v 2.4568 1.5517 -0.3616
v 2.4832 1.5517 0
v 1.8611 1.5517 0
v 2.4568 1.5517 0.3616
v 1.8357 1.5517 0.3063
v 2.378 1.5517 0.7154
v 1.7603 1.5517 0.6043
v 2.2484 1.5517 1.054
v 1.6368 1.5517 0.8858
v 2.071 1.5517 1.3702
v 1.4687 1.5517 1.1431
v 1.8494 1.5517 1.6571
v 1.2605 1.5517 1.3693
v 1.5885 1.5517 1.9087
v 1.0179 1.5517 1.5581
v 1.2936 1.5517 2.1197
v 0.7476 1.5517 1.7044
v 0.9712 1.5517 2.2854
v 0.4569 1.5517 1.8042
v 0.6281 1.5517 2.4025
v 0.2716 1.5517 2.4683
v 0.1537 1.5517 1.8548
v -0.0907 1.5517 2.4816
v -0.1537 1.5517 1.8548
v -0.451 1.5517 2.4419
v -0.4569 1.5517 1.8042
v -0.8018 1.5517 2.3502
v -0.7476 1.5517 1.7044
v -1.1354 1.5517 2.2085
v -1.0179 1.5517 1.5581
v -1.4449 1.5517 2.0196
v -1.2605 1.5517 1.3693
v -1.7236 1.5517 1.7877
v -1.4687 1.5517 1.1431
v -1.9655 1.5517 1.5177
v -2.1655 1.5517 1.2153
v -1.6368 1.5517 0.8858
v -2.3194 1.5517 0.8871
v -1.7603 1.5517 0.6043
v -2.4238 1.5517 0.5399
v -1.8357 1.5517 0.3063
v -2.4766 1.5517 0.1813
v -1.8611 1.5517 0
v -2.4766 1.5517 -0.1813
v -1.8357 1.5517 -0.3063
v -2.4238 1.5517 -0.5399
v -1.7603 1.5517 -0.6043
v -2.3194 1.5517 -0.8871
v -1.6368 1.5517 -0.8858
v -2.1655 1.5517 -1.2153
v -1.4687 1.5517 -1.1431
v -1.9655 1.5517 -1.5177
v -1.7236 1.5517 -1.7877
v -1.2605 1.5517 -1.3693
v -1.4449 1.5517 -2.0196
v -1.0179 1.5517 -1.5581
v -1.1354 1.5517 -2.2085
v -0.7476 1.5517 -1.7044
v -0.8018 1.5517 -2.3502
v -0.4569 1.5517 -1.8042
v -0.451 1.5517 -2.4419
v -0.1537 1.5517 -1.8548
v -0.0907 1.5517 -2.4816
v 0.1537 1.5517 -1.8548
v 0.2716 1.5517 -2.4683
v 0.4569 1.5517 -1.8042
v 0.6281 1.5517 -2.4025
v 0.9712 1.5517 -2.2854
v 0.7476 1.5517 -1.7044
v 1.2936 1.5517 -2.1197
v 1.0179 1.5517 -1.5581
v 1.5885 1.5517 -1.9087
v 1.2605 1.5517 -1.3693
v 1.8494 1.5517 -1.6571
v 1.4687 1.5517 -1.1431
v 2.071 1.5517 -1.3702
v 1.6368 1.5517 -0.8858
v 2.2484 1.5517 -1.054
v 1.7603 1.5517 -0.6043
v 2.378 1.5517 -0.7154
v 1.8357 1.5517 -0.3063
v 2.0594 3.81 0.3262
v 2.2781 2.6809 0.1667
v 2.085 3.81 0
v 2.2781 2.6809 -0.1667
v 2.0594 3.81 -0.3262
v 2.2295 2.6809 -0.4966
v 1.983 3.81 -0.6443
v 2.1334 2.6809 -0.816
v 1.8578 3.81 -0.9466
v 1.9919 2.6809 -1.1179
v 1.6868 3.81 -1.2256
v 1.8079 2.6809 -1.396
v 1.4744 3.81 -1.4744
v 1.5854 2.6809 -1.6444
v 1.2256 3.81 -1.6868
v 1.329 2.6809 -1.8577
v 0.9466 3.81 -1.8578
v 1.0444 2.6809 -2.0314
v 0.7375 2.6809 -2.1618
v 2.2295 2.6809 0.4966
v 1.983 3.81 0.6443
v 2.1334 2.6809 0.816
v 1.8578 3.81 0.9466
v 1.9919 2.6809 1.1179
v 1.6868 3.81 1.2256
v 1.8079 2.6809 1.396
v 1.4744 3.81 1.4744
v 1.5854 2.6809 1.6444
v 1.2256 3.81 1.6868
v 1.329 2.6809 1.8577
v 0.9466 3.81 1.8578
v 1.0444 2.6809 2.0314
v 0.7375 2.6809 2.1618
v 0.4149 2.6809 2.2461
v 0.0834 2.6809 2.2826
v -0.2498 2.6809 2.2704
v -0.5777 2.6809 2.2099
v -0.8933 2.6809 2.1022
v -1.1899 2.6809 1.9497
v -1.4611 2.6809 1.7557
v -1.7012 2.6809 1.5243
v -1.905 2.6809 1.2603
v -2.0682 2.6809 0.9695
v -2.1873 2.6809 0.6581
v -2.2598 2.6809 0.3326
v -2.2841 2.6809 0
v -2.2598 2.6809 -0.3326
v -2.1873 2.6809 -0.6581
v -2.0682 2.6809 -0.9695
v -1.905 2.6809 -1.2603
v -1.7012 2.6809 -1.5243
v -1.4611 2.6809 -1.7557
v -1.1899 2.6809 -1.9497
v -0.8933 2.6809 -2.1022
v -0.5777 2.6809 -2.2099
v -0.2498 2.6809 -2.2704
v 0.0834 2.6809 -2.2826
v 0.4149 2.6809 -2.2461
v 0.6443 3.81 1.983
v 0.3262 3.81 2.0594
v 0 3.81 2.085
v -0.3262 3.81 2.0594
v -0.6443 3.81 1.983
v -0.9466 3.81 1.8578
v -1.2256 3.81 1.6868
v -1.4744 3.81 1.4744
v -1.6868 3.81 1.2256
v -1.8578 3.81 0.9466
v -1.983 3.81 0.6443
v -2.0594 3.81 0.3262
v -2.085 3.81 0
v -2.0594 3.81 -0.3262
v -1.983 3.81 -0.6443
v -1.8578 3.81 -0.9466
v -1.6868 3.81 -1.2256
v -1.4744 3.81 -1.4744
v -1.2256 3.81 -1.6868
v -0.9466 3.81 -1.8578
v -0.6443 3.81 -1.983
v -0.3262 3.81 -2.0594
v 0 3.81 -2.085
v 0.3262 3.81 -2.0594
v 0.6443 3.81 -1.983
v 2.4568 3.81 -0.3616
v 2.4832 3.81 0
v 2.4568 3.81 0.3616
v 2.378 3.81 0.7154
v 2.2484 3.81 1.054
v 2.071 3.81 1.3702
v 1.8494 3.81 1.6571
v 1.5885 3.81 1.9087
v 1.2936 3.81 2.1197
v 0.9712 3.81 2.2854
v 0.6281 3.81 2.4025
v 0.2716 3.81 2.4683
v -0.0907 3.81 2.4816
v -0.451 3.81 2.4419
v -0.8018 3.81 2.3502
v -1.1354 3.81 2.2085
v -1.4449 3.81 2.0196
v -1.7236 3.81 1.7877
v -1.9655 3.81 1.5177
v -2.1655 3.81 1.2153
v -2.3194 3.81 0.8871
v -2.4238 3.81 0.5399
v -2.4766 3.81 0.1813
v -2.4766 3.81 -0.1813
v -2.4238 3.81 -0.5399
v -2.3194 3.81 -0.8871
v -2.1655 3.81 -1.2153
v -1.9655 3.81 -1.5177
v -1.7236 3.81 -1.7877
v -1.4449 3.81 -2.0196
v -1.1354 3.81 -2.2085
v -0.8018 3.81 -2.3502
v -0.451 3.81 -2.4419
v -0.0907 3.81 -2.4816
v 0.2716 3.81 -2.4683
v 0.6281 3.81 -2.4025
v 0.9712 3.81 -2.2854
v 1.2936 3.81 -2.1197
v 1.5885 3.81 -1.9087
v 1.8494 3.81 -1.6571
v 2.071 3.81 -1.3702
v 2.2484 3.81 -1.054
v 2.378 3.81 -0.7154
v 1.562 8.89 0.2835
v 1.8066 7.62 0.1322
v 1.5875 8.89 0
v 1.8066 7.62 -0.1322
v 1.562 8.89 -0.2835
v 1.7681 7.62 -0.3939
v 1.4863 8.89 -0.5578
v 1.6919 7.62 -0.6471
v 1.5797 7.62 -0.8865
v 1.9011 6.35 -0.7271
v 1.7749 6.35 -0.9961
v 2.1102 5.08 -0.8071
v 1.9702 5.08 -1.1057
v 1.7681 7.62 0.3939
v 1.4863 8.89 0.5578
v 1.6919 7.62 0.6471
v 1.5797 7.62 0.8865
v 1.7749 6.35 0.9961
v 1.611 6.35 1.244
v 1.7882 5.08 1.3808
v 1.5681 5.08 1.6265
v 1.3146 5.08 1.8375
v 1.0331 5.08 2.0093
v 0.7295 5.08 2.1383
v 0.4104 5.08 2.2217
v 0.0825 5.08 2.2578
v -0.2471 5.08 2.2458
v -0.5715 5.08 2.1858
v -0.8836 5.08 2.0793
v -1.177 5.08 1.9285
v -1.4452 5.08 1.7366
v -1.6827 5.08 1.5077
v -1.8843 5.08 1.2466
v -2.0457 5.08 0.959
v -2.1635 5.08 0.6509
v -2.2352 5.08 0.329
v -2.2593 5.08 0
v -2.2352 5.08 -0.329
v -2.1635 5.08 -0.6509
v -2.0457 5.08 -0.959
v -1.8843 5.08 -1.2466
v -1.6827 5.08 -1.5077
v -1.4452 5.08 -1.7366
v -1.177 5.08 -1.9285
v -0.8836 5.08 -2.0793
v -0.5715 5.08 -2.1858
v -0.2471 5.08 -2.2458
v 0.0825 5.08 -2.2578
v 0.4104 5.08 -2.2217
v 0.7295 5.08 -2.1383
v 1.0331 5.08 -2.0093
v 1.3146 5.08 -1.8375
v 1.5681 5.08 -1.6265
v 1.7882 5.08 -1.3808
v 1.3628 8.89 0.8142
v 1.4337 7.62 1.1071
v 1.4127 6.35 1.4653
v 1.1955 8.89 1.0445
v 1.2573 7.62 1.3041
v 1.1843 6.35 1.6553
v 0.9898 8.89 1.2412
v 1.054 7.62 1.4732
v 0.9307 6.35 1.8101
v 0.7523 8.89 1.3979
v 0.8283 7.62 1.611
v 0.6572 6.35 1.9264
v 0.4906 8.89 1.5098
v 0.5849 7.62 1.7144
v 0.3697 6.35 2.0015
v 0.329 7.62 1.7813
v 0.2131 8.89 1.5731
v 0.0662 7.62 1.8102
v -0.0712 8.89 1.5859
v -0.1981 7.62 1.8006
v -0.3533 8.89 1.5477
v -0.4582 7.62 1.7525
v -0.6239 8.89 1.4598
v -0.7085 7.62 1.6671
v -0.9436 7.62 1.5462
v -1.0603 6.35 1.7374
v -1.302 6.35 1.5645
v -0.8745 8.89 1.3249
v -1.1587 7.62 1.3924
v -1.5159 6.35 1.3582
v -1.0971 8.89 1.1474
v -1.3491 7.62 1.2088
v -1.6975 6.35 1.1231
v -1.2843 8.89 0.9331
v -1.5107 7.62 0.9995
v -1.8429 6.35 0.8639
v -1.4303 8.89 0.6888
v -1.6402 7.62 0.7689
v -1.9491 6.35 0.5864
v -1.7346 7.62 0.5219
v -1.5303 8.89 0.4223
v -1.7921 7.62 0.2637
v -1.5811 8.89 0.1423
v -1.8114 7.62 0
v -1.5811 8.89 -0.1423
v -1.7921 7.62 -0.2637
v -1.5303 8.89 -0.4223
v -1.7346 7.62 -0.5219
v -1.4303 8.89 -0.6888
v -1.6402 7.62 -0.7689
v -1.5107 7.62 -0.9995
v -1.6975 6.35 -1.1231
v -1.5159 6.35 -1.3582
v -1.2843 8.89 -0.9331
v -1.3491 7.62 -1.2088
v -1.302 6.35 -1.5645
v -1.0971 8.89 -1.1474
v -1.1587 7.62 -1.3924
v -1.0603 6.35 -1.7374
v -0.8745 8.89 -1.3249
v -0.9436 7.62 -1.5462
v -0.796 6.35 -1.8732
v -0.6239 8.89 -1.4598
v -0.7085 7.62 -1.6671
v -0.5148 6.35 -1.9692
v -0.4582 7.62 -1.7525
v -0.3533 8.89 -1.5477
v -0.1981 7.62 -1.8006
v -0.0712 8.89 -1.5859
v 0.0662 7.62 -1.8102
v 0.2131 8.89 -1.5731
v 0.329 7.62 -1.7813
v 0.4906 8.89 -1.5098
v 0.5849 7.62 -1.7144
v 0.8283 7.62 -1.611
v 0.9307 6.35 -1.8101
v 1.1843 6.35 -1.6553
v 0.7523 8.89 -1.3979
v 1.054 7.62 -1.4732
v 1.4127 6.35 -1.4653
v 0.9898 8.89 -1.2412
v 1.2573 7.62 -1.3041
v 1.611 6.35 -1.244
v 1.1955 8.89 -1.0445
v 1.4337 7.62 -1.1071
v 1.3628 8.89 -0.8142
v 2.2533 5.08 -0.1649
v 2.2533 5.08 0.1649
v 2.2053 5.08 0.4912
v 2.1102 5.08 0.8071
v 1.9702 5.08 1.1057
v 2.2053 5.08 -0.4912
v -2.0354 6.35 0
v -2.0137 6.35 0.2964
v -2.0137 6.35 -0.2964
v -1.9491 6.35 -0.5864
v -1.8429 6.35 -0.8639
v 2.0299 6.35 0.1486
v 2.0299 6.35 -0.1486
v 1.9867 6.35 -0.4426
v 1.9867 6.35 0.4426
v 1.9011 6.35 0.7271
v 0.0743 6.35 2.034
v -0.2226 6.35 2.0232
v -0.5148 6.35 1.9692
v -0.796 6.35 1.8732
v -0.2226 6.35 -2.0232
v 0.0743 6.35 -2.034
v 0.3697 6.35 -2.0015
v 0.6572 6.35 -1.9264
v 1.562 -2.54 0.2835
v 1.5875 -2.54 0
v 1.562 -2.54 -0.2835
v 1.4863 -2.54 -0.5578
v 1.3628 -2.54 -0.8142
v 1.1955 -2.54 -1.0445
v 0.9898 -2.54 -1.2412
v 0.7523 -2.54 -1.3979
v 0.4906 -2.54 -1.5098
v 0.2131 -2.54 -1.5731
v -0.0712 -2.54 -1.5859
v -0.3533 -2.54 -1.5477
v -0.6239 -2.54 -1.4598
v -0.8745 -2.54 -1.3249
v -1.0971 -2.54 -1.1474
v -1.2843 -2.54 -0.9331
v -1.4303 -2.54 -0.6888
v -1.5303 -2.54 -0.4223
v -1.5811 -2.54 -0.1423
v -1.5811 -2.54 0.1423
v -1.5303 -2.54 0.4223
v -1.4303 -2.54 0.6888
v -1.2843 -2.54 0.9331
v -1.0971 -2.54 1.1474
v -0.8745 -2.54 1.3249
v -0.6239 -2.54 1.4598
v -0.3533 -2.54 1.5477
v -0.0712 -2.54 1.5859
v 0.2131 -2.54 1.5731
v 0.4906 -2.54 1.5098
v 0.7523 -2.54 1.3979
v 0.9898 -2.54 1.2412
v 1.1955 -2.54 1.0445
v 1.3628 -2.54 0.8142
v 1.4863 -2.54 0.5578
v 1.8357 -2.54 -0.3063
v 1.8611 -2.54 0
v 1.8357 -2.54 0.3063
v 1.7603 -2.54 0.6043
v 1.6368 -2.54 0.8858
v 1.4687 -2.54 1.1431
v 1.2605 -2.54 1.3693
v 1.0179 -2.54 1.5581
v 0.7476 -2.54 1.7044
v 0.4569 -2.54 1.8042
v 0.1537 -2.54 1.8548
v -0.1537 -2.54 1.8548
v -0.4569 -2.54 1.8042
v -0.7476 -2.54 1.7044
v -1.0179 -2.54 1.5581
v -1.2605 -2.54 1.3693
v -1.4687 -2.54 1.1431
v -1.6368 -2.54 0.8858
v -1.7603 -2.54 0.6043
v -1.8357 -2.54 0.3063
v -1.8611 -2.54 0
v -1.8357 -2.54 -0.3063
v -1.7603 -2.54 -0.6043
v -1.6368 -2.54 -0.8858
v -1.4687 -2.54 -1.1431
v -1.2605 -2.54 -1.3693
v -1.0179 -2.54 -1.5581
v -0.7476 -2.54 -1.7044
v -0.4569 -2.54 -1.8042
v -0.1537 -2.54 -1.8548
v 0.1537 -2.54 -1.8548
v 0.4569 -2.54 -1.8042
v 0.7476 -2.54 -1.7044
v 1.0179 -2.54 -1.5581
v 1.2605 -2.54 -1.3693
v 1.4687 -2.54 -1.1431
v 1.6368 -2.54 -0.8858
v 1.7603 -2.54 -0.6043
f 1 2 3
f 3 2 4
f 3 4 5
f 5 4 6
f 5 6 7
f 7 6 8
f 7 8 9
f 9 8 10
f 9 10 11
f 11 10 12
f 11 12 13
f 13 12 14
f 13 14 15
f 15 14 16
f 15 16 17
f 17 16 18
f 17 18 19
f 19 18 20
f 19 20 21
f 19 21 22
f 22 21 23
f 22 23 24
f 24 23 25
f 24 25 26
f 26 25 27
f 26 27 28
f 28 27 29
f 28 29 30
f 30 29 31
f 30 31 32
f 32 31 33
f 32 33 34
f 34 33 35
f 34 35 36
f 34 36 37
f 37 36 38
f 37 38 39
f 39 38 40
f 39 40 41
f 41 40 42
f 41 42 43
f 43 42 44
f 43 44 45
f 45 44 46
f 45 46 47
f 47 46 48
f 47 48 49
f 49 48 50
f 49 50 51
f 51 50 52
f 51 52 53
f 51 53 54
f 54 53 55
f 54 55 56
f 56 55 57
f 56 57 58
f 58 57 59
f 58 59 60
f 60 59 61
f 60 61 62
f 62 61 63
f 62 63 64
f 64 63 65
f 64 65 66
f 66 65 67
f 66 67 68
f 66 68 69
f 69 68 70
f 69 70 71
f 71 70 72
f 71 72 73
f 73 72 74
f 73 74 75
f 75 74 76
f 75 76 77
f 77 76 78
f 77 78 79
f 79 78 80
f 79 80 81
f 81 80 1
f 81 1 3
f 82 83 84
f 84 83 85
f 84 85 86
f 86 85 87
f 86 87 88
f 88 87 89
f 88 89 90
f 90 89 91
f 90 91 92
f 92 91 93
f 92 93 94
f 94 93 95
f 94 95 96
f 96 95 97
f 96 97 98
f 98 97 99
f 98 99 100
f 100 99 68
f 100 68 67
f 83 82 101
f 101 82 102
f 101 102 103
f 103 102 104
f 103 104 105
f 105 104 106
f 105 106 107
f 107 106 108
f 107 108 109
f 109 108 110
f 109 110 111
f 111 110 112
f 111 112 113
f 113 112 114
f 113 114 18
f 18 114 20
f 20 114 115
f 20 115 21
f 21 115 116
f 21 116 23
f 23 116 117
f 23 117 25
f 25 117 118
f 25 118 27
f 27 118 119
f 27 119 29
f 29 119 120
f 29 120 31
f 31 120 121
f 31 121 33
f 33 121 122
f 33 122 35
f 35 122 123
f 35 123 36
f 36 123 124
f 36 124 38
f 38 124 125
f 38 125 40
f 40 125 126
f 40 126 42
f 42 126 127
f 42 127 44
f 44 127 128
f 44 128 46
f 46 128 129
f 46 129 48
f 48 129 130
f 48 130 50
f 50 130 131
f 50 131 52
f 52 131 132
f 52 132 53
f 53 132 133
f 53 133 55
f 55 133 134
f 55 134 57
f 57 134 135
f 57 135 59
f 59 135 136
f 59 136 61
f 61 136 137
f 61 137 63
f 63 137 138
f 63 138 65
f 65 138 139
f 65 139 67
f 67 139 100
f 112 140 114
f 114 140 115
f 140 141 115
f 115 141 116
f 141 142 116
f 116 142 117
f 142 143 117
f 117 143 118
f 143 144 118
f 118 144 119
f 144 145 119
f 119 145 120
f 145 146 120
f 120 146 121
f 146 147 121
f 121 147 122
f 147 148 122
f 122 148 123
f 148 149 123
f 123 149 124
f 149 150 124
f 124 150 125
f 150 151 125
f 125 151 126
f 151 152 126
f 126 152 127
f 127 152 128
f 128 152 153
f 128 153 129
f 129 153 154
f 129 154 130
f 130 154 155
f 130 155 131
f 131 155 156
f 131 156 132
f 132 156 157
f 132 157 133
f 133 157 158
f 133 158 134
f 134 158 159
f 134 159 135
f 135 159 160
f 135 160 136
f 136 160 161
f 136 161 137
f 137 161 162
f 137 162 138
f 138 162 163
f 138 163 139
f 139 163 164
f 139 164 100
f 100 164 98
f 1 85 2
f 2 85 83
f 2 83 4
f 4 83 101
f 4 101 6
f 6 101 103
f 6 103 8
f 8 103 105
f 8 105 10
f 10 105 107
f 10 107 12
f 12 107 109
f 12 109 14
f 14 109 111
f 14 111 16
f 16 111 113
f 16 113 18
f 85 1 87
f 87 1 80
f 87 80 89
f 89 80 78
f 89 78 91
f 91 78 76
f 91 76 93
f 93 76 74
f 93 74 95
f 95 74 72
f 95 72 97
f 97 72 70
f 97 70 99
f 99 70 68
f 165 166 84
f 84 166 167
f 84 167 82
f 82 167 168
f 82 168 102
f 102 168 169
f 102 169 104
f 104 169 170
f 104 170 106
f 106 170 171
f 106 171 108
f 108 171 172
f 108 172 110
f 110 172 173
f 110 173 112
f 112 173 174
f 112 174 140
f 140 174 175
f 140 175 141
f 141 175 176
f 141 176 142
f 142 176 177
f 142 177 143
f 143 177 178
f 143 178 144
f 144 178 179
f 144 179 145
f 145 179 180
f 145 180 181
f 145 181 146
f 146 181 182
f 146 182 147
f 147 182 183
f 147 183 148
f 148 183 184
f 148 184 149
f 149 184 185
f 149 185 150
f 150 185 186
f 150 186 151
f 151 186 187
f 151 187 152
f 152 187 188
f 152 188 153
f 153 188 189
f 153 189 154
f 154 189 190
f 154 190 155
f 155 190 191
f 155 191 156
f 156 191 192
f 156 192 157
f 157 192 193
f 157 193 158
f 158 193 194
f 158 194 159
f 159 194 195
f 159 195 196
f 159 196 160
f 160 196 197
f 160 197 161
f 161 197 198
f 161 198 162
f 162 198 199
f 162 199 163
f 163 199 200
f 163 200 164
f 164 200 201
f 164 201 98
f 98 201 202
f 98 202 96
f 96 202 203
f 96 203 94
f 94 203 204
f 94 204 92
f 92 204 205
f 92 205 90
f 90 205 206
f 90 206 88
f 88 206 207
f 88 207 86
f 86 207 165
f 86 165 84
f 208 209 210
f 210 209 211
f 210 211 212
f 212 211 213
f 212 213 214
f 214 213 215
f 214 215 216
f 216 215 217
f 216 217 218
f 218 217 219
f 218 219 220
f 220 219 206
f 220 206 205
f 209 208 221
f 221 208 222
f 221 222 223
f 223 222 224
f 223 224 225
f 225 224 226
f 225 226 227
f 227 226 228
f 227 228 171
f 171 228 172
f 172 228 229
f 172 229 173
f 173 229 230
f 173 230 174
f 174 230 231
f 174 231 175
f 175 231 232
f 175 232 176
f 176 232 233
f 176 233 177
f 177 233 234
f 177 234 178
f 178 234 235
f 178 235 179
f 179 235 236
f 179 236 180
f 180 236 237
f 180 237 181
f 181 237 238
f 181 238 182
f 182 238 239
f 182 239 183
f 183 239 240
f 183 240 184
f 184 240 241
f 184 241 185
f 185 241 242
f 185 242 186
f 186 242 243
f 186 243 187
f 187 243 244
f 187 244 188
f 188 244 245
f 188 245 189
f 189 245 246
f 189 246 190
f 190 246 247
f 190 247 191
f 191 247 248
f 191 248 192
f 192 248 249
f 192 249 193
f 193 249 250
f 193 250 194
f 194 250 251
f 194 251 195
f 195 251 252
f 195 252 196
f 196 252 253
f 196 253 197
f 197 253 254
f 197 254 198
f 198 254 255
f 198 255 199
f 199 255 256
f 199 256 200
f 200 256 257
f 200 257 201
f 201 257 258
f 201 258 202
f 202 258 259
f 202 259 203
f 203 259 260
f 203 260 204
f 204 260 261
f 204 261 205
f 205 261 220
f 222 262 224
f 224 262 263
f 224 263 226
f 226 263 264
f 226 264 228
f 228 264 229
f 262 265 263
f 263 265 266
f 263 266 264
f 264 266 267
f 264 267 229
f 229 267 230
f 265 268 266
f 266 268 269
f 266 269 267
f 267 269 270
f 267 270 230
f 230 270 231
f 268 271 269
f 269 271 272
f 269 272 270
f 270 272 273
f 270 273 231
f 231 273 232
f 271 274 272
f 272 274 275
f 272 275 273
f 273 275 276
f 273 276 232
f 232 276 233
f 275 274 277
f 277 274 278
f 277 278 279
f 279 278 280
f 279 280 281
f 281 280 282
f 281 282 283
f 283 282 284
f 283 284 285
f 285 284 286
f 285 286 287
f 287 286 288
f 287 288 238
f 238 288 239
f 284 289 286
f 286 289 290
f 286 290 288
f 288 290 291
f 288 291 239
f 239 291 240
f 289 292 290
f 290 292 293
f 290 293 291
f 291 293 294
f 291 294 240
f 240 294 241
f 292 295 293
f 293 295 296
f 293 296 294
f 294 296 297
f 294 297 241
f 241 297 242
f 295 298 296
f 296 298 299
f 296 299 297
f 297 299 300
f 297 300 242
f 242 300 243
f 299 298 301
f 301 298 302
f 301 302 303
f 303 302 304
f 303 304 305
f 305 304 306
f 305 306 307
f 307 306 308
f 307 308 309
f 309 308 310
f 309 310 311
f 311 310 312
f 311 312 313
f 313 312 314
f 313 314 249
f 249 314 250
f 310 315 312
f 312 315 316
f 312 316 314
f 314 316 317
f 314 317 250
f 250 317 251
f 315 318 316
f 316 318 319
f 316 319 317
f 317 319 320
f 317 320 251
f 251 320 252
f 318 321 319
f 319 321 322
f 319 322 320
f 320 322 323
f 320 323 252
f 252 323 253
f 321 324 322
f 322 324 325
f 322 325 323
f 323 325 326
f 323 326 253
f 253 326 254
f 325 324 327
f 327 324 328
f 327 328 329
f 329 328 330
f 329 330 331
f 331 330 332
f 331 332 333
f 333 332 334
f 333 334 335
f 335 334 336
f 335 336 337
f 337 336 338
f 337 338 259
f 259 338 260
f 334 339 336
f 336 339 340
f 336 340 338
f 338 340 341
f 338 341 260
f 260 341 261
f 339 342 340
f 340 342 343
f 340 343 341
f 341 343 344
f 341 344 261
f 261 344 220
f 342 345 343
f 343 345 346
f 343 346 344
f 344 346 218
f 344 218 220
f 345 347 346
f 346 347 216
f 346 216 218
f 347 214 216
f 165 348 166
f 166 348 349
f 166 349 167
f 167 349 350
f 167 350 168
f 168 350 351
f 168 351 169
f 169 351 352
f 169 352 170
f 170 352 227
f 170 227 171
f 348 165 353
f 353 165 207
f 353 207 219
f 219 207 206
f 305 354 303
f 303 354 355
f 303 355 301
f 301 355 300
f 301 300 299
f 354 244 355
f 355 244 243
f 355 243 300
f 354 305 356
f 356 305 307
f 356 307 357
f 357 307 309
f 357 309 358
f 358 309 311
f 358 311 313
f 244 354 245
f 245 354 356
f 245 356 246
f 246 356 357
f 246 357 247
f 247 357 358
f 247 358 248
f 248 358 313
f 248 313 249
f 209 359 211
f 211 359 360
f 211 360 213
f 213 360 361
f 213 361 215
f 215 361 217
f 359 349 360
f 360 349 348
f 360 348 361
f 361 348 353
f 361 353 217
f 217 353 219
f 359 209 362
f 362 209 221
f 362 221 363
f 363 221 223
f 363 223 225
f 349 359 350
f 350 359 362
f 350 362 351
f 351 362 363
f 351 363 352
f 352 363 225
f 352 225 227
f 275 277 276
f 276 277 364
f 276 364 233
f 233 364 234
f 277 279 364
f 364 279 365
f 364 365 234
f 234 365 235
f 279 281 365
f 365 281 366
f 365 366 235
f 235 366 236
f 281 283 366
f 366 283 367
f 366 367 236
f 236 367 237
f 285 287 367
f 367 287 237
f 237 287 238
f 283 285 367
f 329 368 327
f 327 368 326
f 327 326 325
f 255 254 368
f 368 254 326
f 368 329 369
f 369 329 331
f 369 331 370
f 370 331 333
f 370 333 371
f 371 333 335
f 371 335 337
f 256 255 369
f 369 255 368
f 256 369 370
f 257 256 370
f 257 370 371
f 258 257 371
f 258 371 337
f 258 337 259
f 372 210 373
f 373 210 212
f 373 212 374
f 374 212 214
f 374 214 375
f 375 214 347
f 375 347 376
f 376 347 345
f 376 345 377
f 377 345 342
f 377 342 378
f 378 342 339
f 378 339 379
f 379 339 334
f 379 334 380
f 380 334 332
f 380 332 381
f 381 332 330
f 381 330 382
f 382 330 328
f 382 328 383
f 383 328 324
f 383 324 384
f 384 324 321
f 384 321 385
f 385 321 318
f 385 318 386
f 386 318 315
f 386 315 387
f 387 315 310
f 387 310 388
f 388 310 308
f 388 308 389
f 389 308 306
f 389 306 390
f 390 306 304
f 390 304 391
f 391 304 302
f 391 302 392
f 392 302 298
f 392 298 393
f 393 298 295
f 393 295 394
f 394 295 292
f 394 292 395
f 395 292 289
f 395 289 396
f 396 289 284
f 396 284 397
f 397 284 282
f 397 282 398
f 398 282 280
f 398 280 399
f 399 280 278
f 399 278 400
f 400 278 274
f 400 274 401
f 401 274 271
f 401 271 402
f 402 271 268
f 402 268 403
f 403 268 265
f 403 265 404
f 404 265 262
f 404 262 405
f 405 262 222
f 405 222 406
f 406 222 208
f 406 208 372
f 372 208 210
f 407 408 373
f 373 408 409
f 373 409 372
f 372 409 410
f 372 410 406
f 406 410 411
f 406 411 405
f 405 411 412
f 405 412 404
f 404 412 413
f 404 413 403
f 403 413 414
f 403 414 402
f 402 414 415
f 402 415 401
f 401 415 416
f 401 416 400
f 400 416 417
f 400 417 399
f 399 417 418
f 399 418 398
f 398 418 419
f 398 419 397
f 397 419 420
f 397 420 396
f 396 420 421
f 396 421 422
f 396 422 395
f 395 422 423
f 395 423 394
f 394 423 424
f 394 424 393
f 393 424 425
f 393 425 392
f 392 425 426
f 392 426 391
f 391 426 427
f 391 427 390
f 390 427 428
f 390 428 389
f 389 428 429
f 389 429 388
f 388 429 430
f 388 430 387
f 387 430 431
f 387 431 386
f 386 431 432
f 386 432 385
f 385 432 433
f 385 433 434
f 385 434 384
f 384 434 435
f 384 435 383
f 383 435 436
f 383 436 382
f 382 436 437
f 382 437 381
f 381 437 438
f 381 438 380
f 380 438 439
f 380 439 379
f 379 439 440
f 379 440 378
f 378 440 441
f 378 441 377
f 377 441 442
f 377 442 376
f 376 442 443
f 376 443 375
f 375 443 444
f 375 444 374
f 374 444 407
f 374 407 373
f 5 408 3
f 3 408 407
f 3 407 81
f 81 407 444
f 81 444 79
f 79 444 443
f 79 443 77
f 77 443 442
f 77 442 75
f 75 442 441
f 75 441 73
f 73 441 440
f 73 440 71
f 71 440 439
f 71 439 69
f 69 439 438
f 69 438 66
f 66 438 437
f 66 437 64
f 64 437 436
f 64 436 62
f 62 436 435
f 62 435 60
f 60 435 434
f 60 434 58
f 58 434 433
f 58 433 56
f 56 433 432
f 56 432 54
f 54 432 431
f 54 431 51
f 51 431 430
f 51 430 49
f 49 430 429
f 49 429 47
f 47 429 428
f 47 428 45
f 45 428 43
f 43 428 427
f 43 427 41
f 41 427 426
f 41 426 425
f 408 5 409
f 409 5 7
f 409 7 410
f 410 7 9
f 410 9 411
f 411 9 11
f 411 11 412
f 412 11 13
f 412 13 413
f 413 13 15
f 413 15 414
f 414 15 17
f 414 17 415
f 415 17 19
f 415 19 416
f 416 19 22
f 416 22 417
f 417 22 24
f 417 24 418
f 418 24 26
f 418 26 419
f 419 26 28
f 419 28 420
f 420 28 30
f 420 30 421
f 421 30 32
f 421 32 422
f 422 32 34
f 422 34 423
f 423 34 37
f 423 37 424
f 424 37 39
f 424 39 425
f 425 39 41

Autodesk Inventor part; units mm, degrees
ref_plane "YZ Plane" through (0, 0, 0) normal (1, 0, 0) x (0, 1, 0)
ref_plane "XZ Plane" through (0, 0, 0) normal (0, 1, 0) x (-1, 0, 0)
ref_plane "XY Plane" through (0, 0, 0) normal (0, 0, 1) x (1, 0, 0)
sketch "Sketch1" plane through (0, 0, 0) normal (0, 0, 1) x (1, 0, 0)
  line L0 (1.5875, 0) -> (1.5875, 8.89)
  line L1 (1.5875, 8.89) -> (2.4832, 3.81)
  line L2 (1.5875, 8.89) -> (6.7459, 8.89) construction
  line L3 (2.4832, 3.81) -> (2.085, 3.81)
  line L4 (2.085, 3.81) -> (2.4832, 1.5517)
  line L5 (2.4832, 1.5517) -> (1.8611, 1.5517)
  line L6 (1.8611, 1.5517) -> (1.8611, 0)
  line L7 (1.8611, 0) -> (1.5875, 0)
  line L8 (0, -4.826) -> (0, 11.176) projected
  line L9 (1.5875, 0) -> (1.8611, 0)
  line L10 (1.8611, 0) -> (1.8611, -2.54)
  line L11 (1.8611, -2.54) -> (1.5875, -2.54)
  line L12 (1.5875, -2.54) -> (1.5875, 0)
  point P0 (0, 0)
  point P1 (2.1722, 1.5517)
  dimension "d1" = 1.5875
  dimension "d3" = 0
  dimension "d4" = 80
  dimension "d5" = 0.3982
  dimension "d6" = 2.2583
  dimension "d7" = 1.5517
  dimension "d8" = 1.8611
  dimension "d10" = 8.89
  dimension "d11" = 2.54
  dimension "d12" = 0.2736
revolve "Revolution1" add sketch "Sketch1" angle 360 about axis through (0, -10, 0) along (0, 1, 0)
properties part number "eigthinch"
